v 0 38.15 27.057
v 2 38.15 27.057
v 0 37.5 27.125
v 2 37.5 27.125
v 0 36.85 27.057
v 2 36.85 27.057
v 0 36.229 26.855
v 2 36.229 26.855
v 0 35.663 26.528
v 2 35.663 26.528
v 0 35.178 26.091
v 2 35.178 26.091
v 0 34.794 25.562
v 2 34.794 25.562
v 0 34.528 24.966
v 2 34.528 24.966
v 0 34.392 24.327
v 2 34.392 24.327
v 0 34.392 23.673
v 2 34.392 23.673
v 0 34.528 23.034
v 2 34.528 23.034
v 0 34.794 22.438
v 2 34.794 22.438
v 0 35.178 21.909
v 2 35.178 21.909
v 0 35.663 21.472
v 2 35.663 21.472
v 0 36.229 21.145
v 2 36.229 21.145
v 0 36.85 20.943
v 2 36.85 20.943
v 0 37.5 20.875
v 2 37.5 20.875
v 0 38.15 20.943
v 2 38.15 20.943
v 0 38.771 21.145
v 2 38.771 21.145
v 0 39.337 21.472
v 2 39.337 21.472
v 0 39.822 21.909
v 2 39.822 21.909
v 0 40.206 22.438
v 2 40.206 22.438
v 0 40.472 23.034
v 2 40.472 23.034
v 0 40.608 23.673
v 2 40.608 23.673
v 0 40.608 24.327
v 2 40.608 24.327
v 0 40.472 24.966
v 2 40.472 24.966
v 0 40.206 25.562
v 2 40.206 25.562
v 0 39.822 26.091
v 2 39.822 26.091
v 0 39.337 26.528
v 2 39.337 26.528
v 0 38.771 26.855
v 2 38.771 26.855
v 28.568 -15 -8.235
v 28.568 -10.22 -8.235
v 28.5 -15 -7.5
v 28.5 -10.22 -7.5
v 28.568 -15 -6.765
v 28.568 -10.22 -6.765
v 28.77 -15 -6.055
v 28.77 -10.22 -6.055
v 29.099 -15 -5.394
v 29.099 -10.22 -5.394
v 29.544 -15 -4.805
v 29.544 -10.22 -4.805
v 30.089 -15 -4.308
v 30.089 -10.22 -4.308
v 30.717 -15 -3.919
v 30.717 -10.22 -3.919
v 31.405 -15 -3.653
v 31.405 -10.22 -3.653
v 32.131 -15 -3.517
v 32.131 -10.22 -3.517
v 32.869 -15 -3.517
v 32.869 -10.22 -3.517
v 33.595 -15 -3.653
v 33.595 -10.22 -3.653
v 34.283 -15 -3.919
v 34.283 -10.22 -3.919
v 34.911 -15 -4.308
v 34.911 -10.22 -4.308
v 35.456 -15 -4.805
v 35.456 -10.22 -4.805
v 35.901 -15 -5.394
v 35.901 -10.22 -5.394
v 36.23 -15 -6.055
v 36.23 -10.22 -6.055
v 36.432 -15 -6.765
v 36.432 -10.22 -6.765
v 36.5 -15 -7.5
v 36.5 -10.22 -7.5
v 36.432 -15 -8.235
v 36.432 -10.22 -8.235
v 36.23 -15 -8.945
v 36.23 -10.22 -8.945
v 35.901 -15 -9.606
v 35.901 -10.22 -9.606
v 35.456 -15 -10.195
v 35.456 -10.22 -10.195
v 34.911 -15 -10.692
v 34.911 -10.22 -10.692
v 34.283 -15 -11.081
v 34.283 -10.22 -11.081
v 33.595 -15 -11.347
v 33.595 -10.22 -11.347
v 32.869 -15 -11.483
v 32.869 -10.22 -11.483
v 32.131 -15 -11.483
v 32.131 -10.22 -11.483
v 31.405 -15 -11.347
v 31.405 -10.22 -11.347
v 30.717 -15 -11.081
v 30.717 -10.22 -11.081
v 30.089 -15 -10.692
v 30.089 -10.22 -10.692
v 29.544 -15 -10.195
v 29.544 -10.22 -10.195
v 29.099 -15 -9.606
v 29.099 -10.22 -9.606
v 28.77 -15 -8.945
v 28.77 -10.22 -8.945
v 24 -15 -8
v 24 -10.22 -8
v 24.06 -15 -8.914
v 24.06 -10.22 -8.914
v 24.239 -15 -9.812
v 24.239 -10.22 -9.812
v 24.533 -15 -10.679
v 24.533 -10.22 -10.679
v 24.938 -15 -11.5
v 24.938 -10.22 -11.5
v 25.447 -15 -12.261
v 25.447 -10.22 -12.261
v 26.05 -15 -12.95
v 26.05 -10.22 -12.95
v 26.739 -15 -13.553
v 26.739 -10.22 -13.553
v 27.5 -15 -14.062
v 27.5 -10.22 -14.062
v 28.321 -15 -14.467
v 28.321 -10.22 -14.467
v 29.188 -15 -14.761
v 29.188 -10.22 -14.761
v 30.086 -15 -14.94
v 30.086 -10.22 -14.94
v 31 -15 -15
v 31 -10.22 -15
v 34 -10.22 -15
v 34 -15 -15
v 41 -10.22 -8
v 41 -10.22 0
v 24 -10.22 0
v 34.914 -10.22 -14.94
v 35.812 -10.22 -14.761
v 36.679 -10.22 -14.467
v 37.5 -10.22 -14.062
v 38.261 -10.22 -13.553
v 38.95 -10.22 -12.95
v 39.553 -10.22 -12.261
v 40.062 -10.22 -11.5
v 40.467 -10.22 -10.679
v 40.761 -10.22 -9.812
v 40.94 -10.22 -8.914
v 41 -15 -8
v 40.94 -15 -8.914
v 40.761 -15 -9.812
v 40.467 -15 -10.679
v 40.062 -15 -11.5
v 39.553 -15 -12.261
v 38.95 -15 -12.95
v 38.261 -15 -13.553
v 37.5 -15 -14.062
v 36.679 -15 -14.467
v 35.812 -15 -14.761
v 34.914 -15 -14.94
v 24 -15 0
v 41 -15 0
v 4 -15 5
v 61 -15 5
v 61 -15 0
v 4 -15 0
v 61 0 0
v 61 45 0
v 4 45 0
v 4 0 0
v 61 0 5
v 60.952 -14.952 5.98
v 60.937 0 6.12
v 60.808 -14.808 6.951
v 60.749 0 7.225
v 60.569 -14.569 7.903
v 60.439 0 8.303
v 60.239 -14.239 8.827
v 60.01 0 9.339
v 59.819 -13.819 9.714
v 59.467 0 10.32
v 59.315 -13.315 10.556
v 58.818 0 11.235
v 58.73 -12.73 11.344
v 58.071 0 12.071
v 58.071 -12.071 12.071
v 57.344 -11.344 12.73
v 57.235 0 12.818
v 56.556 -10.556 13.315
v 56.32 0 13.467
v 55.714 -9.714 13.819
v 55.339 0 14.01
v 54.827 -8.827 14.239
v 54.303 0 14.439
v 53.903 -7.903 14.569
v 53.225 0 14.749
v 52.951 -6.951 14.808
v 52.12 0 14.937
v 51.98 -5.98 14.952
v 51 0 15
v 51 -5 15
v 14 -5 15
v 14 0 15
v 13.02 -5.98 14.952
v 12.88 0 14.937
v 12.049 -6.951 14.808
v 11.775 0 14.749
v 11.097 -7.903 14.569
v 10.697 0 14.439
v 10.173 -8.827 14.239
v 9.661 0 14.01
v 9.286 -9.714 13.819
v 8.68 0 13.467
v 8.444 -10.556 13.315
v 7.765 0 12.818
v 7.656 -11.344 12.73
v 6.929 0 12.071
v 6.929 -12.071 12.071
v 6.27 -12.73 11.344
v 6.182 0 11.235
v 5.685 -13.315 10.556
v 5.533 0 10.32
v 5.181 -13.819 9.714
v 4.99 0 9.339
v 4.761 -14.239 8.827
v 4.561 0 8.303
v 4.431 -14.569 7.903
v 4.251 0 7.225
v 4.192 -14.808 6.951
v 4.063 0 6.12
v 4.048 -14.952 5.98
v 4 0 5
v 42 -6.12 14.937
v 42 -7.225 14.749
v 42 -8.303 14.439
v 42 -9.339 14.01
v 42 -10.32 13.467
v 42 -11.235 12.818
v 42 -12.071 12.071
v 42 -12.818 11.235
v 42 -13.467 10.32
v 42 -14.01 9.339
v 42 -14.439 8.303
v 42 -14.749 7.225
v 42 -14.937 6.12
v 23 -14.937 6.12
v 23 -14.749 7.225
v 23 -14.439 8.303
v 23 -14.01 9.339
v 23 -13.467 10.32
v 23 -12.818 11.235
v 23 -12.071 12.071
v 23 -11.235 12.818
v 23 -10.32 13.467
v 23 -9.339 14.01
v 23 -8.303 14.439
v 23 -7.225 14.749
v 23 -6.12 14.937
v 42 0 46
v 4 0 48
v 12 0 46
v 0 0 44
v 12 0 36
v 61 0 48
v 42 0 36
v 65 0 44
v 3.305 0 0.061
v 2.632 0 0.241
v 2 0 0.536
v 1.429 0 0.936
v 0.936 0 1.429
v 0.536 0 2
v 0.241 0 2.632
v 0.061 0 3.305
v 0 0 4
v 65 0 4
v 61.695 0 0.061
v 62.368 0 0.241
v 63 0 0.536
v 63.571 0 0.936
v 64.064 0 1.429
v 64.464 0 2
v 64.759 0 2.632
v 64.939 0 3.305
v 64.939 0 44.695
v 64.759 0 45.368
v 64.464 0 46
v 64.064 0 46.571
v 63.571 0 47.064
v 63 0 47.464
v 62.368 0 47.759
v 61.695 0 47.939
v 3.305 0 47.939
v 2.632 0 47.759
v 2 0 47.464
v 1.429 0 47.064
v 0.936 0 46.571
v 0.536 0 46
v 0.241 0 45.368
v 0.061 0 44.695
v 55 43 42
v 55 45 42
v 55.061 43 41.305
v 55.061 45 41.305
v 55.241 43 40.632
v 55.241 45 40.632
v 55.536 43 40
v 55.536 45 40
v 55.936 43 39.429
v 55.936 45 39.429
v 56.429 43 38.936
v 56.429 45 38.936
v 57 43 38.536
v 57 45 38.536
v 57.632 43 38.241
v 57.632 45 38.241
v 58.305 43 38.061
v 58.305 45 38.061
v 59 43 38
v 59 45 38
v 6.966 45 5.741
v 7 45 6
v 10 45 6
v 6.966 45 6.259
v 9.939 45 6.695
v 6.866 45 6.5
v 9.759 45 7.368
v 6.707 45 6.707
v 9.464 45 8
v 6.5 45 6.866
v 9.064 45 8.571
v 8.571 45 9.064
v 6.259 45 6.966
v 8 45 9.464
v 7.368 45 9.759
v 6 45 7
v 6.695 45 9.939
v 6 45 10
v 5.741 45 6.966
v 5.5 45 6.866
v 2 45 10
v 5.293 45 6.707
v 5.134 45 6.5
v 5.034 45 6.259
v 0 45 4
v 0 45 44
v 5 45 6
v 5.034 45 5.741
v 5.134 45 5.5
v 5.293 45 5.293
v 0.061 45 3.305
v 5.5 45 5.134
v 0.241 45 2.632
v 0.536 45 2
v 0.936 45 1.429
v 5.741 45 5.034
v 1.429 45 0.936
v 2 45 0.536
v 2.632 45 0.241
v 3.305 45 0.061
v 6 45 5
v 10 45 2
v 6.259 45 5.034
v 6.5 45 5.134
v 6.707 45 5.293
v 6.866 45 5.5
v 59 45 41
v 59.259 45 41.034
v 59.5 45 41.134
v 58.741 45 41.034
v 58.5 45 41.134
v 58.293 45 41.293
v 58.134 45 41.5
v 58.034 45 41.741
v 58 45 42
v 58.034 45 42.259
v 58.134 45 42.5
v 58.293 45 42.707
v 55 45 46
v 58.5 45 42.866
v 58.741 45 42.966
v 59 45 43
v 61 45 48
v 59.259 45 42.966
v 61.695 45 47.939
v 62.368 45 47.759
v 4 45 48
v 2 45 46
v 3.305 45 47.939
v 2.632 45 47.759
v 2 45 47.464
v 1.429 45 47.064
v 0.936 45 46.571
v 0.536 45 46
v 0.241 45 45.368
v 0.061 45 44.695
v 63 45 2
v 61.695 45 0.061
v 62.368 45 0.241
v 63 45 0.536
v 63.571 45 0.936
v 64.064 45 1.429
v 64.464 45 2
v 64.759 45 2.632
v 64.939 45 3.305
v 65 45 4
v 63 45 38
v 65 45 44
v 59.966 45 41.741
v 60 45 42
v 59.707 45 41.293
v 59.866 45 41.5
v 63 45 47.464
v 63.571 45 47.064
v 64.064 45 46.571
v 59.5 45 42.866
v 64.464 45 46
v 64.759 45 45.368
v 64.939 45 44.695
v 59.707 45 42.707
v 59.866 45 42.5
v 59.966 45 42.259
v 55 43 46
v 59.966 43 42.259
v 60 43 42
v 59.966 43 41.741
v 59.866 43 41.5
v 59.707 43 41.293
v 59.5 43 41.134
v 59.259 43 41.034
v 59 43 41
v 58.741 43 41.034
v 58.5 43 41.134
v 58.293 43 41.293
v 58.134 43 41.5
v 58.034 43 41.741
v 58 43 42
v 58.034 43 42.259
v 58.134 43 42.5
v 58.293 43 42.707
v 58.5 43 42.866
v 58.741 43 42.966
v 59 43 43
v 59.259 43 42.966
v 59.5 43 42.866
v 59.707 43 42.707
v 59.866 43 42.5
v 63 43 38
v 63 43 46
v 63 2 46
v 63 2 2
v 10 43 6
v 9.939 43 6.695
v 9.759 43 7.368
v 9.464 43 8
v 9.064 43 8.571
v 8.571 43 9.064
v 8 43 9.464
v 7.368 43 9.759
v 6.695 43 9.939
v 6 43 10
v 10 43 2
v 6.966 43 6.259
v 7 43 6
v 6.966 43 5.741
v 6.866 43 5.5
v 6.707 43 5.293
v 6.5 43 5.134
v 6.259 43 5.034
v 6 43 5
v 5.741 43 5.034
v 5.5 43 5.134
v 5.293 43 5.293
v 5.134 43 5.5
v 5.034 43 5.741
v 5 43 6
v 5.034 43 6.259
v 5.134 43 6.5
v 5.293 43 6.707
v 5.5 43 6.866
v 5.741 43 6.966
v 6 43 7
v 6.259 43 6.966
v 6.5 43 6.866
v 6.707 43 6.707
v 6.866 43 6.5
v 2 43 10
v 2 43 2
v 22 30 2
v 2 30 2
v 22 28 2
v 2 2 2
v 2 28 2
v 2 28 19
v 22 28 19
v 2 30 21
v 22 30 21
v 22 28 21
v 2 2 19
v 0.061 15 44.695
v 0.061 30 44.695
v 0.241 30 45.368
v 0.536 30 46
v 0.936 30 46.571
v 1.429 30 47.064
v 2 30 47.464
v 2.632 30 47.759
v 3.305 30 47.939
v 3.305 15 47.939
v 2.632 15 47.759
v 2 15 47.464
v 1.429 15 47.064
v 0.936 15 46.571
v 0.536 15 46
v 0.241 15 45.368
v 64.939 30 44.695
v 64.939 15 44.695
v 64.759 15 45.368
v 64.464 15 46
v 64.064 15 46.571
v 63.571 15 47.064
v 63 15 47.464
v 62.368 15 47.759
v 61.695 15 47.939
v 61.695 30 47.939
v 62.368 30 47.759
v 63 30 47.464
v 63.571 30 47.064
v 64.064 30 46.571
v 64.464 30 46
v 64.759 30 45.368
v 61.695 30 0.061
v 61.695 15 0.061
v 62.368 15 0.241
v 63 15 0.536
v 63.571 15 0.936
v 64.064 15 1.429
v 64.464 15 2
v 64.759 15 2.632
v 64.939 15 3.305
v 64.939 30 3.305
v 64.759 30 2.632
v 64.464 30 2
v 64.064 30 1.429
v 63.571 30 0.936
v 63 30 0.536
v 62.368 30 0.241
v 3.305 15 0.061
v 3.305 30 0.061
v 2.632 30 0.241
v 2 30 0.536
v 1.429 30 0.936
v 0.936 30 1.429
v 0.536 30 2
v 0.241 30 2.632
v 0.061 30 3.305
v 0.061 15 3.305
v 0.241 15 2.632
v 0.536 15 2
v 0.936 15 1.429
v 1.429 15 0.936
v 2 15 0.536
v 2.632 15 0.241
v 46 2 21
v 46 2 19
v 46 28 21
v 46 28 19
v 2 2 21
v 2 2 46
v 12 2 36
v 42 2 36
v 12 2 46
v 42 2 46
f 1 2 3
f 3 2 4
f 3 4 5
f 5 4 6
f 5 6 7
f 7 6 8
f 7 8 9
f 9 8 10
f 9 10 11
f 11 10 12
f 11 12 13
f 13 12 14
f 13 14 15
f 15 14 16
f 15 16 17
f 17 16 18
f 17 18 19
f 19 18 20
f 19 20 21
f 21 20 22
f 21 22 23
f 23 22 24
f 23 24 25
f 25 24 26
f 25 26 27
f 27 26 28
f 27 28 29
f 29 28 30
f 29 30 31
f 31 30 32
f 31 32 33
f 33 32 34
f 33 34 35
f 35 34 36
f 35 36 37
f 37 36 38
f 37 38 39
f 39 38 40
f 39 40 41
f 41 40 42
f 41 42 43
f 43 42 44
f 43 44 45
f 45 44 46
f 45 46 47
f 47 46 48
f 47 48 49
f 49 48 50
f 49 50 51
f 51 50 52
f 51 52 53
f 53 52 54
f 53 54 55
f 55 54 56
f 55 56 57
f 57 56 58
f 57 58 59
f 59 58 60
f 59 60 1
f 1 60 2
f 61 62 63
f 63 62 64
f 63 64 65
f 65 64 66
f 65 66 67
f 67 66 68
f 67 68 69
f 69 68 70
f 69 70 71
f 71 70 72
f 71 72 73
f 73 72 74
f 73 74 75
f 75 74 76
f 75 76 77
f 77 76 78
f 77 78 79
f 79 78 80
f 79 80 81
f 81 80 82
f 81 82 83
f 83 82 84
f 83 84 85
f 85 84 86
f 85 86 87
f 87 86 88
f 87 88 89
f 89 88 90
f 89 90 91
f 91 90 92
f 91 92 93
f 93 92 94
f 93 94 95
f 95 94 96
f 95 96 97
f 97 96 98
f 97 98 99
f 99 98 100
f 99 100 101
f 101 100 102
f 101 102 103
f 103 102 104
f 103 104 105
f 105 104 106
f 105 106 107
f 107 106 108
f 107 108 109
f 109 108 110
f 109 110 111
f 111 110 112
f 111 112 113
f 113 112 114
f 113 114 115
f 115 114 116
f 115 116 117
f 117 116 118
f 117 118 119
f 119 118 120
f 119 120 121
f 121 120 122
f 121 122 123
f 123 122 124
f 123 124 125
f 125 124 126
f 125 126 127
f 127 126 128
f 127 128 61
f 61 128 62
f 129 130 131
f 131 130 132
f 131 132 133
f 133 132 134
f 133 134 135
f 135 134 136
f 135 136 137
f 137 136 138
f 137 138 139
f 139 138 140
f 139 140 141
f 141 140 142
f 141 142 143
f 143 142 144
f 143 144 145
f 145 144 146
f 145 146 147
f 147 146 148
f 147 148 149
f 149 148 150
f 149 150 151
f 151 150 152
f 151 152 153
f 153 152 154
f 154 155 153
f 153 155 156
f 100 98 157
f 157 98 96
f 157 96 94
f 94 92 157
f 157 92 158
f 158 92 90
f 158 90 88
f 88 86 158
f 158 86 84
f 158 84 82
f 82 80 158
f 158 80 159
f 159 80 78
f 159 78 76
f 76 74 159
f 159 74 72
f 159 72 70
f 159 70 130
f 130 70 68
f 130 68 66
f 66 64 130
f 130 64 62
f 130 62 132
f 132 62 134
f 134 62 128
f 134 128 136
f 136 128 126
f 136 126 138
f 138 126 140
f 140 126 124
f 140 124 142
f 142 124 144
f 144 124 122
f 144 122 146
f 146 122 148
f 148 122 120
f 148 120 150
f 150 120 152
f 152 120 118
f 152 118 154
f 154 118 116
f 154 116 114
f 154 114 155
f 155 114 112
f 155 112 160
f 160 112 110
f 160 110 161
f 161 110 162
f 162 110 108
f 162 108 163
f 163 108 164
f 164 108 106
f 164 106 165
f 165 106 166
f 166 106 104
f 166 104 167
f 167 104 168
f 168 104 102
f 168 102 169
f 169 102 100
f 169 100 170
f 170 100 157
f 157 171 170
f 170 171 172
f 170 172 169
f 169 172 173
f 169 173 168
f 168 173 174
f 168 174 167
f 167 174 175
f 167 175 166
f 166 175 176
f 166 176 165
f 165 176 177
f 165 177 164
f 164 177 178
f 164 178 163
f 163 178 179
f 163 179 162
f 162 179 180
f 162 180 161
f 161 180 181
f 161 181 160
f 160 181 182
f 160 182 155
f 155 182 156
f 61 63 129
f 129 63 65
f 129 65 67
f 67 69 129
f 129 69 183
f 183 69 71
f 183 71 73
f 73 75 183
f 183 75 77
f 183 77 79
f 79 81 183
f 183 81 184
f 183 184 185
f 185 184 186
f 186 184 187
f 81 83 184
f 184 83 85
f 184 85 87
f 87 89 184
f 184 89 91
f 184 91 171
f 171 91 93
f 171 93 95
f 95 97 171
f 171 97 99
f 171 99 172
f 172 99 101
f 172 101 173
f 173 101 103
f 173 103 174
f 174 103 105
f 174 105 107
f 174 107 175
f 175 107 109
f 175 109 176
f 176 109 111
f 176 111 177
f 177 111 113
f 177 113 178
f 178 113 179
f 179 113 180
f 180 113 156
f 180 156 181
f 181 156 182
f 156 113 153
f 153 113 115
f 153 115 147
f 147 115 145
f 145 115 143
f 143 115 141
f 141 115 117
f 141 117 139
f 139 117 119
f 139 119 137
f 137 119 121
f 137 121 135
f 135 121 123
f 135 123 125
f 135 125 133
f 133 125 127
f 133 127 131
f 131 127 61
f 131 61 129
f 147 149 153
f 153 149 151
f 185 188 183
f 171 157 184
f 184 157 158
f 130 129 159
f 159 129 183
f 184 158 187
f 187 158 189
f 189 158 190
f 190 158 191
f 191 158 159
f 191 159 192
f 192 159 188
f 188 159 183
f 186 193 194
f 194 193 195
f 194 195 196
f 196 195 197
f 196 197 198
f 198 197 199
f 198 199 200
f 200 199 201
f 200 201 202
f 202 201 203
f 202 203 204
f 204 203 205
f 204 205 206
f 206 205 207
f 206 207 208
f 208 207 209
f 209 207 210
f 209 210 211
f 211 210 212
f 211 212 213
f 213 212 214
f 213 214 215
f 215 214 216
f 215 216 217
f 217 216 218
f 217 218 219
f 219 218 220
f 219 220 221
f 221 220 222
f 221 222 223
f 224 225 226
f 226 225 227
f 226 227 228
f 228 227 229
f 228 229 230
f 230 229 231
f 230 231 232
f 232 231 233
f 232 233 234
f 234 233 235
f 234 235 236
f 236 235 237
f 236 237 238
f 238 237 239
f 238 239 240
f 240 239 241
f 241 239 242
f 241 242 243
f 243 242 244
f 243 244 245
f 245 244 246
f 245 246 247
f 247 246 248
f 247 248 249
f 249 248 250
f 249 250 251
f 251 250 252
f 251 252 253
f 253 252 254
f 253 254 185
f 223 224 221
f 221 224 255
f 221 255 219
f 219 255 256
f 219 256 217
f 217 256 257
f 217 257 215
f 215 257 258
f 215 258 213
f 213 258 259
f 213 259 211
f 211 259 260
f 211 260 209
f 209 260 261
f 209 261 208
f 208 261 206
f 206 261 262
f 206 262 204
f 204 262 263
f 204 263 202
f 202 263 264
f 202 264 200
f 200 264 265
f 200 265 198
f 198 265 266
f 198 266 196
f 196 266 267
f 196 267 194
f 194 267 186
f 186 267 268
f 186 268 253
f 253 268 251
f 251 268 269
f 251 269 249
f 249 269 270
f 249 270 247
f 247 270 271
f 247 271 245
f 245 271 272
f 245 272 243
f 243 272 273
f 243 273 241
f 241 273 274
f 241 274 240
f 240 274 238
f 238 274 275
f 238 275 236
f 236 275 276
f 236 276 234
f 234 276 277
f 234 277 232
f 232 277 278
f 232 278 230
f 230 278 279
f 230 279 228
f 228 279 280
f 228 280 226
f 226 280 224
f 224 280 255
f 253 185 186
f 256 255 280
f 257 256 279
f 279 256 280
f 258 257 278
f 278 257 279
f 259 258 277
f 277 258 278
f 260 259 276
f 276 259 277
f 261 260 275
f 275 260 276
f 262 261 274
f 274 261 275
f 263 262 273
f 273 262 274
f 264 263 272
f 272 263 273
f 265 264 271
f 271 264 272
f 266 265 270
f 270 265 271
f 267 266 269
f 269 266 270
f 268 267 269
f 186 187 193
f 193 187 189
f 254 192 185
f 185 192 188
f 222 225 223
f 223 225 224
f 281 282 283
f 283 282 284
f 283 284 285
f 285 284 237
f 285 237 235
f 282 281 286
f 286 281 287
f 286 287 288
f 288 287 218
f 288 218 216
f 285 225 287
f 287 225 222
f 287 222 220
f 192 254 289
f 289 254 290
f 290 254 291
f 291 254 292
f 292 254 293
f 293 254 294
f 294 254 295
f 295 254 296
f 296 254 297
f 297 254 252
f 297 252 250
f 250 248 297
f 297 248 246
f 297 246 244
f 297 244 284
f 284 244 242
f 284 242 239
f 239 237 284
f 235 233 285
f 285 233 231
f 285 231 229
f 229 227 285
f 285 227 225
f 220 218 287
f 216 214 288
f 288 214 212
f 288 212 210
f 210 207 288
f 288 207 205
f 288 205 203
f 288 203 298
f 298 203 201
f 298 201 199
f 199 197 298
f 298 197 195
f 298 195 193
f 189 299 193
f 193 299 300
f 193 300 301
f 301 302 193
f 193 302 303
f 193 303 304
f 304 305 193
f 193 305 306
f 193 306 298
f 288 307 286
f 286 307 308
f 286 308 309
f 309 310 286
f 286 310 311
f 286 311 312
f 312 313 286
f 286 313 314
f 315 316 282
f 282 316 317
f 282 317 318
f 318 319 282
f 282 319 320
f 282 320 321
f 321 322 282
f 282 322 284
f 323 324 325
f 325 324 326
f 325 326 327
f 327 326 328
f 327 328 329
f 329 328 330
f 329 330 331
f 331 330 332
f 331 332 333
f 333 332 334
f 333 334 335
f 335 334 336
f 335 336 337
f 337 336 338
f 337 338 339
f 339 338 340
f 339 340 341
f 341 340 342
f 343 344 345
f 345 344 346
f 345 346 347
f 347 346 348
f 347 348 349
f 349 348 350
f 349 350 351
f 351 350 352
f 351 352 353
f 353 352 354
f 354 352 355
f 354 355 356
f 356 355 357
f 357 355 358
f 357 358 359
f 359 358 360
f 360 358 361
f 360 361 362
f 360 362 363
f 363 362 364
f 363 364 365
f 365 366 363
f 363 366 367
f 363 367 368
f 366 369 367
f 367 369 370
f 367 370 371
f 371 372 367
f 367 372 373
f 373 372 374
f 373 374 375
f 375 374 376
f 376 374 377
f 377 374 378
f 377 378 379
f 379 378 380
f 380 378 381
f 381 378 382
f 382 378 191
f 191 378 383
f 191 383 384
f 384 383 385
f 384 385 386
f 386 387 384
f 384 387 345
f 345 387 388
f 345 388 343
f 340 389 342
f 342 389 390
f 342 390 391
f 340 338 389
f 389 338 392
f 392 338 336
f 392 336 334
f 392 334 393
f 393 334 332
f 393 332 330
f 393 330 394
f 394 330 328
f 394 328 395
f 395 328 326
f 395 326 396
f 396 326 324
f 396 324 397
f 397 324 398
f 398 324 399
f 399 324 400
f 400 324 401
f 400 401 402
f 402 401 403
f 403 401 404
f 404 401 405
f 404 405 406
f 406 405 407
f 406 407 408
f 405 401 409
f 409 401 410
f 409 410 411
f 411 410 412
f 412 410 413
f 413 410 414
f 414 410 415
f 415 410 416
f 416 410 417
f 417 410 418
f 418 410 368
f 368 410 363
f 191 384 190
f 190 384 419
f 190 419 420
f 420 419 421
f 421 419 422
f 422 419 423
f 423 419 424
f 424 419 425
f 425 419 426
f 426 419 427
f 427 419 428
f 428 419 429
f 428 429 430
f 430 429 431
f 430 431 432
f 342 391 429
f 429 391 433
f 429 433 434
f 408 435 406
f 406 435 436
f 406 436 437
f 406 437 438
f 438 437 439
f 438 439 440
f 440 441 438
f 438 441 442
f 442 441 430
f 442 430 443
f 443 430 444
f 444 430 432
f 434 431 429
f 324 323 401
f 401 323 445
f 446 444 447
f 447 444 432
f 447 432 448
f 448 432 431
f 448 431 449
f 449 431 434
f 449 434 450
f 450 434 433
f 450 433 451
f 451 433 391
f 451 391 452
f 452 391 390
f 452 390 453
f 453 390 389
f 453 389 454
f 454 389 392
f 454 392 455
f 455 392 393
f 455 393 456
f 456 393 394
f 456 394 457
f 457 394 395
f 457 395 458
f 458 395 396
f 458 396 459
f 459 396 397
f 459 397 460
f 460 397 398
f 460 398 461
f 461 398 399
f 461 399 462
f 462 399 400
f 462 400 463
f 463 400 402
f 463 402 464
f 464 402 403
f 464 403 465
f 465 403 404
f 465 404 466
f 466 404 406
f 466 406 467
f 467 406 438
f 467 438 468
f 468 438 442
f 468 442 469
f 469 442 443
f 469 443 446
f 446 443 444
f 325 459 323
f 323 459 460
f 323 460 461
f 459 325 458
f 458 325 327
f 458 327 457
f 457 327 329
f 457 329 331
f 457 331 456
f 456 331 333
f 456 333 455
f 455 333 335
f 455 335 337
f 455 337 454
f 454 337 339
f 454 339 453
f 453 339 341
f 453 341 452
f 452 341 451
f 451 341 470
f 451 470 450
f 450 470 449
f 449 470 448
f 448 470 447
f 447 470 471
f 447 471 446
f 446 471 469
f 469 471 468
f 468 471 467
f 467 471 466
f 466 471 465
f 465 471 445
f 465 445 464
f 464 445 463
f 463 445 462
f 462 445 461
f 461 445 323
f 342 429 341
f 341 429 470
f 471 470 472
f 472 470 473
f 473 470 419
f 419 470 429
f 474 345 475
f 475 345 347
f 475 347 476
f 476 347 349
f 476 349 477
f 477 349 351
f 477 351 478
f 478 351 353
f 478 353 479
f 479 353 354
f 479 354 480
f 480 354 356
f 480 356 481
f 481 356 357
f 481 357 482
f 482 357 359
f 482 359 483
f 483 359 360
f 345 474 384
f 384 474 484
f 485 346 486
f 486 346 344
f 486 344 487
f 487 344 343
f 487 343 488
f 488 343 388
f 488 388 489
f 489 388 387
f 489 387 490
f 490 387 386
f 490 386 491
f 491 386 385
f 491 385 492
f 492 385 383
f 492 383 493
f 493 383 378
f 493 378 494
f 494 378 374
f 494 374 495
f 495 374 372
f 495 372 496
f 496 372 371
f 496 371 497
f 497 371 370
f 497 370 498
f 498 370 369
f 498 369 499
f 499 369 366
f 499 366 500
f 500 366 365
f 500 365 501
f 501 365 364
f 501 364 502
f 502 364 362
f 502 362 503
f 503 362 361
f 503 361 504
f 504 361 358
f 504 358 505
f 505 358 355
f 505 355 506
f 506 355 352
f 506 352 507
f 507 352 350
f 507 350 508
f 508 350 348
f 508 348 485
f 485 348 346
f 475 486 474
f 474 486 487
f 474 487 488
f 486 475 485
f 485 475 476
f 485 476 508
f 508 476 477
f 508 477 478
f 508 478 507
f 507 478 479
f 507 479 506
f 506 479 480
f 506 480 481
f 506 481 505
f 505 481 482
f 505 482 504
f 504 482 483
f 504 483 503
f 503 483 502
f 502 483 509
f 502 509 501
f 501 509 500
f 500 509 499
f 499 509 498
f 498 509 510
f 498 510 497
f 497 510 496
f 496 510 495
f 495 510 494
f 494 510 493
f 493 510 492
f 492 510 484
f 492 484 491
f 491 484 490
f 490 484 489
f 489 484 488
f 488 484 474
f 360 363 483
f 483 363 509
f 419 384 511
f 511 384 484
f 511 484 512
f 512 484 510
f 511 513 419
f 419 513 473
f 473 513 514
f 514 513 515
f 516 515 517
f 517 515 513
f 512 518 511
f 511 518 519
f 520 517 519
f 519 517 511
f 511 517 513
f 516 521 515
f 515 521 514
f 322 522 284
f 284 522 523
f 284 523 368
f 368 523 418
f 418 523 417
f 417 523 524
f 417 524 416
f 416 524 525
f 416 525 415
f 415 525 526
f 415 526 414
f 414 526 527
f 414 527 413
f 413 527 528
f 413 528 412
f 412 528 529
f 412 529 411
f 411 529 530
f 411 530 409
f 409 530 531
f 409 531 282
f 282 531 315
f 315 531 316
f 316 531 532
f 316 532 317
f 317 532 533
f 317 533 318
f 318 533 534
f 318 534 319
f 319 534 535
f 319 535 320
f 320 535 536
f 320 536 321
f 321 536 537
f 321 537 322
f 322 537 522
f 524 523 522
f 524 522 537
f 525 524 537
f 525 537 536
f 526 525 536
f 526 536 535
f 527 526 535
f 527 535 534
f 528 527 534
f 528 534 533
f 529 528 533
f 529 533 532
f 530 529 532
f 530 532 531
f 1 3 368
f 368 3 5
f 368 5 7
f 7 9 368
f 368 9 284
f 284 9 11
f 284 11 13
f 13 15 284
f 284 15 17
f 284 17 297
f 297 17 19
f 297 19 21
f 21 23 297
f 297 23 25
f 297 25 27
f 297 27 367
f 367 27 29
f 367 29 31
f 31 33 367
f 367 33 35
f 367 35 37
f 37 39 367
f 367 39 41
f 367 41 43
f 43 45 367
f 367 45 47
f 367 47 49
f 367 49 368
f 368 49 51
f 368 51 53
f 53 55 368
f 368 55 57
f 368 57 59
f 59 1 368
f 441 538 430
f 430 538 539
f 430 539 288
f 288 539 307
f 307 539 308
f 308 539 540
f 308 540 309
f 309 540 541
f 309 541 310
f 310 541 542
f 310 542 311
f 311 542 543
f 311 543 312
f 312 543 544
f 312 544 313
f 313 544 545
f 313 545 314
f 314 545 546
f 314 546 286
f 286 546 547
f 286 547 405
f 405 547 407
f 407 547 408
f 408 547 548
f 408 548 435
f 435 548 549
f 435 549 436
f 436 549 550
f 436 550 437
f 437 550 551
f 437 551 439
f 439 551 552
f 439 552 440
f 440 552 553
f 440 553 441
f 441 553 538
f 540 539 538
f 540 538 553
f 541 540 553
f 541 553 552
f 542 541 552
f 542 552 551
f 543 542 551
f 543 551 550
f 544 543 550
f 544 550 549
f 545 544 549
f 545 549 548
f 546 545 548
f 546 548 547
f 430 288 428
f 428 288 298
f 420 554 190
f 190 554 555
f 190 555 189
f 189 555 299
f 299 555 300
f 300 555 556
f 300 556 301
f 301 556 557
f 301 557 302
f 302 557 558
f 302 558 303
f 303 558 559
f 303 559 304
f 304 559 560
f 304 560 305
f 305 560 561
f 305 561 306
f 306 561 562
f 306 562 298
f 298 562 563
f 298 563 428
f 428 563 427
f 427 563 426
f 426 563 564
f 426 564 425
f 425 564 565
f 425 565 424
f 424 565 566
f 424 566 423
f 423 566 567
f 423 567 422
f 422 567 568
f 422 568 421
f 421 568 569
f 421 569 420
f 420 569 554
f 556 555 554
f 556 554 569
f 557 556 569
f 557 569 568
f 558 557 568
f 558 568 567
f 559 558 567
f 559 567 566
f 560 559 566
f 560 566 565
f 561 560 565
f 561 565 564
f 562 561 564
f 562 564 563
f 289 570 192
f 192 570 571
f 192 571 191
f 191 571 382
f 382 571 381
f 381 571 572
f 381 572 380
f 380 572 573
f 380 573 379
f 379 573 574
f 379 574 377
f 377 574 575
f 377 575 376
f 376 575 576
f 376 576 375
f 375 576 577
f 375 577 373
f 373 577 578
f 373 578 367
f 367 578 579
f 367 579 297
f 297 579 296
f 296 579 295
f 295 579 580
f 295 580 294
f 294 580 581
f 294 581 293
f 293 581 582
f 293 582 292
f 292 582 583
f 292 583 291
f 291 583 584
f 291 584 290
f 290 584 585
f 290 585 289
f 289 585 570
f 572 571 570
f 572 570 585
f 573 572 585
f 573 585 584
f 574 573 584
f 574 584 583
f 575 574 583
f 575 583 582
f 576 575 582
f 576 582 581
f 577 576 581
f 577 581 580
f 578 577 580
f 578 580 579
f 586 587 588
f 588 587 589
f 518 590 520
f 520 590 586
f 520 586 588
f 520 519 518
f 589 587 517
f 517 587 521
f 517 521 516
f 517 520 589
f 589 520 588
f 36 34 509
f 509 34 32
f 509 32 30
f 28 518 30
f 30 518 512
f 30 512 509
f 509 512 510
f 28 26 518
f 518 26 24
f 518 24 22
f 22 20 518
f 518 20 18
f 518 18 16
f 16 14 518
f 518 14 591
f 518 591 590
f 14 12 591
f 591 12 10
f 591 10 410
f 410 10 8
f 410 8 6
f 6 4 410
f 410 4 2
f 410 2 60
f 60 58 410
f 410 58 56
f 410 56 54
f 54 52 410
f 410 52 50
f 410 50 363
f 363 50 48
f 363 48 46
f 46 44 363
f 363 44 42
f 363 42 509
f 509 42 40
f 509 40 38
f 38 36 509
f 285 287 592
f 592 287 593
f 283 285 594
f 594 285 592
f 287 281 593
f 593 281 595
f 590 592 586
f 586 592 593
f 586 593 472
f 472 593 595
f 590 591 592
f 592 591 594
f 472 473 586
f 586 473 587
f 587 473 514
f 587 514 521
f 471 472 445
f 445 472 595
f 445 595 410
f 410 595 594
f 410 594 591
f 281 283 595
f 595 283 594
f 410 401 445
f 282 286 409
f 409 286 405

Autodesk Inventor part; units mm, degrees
ref_plane "YZ Plane" through (0, 0, 0) normal (1, 0, 0) x (0, 1, 0)
ref_plane "XZ Plane" through (0, 0, 0) normal (0, 1, 0) x (-1, 0, 0)
ref_plane "XY Plane" through (0, 0, 0) normal (0, 0, 1) x (1, 0, 0)
sketch "Sketch1" plane through (0, 0, 0) normal (0, 0, 1) x (1, 0, 0)
  line L0 (0, 0) -> (65, 0)
  line L1 (65, 0) -> (65, 45)
  line L2 (65, 45) -> (0, 45)
  line L3 (0, 45) -> (0, 0)
  dimension "d3" = 65
  dimension "d4" = 45
extrude "Extrusion1" add sketch "Sketch1" along normal blind 48
shell "Shell1" thickness 2 removed faces 1 at (43.3333, 45, 16)
sketch "Sketch2" plane through (2, 2, 2) normal (0, 1, 0) x (1, 0, 0)
  line L0 (61, -44) -> (0, -44) projected
  line L1 (0, -44) -> (10, -44)
  line L2 (10, -44) -> (40, -44)
  line L3 (40, -44) -> (40, -34)
  line L4 (40, -34) -> (10, -34)
  line L5 (10, -34) -> (10, -44)
  line L6 (61, 0) -> (61, -44) projected
  line L7 (0, -44) -> (0, 0) projected
  point P0 (-2, 2)
  dimension "d9" = 30
  dimension "d10" = 10
  dimension "d11" = 61
  dimension "d27" = 10
extrude "Extrusion2" cut sketch "Sketch2" against normal through all
sketch "Sketch3" plane through (2, 2, 2) normal (0, 1, 0) x (1, 0, 0)
  line L0 (0, 0) -> (0, -44) projected
  line L1 (0, -17) -> (0, 33)
  line L2 (0, -17) -> (44, -17)
  line L3 (44, -17) -> (0, -17)
  line L4 (0, -17) -> (0, -19)
  line L5 (0, -19) -> (44, -19)
  line L6 (44, -19) -> (44, -17)
  point P0 (-2, 2)
  dimension "d16" = 44
  dimension "d17" = 2
extrude "Extrusion3" add sketch "Sketch3" along normal blind 26
fillet "Fillet1" radius 4 1 edges at (0, 22.5, 0)
fillet "Fillet2" radius 4 1 edges at (65, 22.5, 0)
fillet "Fillet3" radius 4 1 edges at (65, 22.5, 48)
fillet "Fillet4" radius 4 1 edges at (0, 22.5, 48)
sketch "Sketch4" plane through (2, 2, 2) normal (1, 0, 0) x (0, 0, -1)
  line L0 (-19, 26) -> (-17, 26) projected
  line L1 (-19, 26) -> (0, 26)
  line L2 (0, 26) -> (0, 28)
  line L3 (0, 28) -> (-19, 28)
  line L4 (-19, 28) -> (-19, 26)
  point P0 (2, -2)
  dimension "d24" = 2
extrude "Extrusion4" add sketch "Sketch4" along normal blind 20
sketch "Sketch8" plane through (2, 2, 2) normal (0, 0, 1) x (1, 0, 0)
  line L0 (0, 43) -> (8, 43)
  line L1 (8, 43) -> (8, 41)
  line L2 (8, 41) -> (0, 41)
  line L3 (0, 41) -> (0, 43)
  point P0 (-2, -2)
  dimension "d28" = 8
  dimension "d29" = 2
extrude "Extrusion5" add sketch "Sketch8" along normal blind 8
sketch "Sketch10" plane through (4, 45, 0) normal (0, 1, 0) x (1, 0, 0)
  line L0 (6, -2) -> (6, -10) projected
  circle A0 centre (2, -6) radius 1
  point P0 (-4, 0)
extrude "Extrusion7" cut sketch "Sketch10" against normal blind 2
fillet "Fillet6" radius 4 1 edges at (10, 44, 10)
sketch "Sketch13" plane through (63, 45, 46) normal (0, 0, -1) x (-1, 0, 0)
  line L0 (0, -43) -> (0, 0) projected
  line L1 (0, 0) -> (8, 0)
  line L2 (8, 0) -> (8, -2)
  line L3 (8, -2) -> (0, -2)
  line L4 (0, -2) -> (0, 0)
  point P0 (63, -45)
  point P1 (0, -2)
  dimension "d51" = 8
  dimension "d52" = 2
extrude "Extrusion10" add sketch "Sketch13" along normal blind 8
sketch "Sketch14" plane through (4, 45, 0) normal (0, 1, 0) x (1, 0, 0)
  circle A0 centre (55, -42) radius 1
  point P0 (-4, 0)
extrude "Extrusion11" cut sketch "Sketch14" against normal blind 2
fillet "Fillet7" radius 4 1 edges at (55, 44, 38)
sketch "Sketch15" plane through (4, 0, 0) normal (0, -1, 0) x (1, 0, 0)
  line L0 (57, 0) -> (0, 0)
  line L1 (0, 0) -> (0, 15)
  line L2 (0, 15) -> (57, 15)
  line L3 (57, 15) -> (57, 0)
extrude "Extrusion12" add sketch "Sketch15" along normal blind 15
fillet "Fillet8" radius 10 3 edges at (4, -7.5, 15) (61, -7.5, 15) (32.5, -15, 15)
sketch "Sketch16" plane through (0, 0, 0) normal (0, 0, -1) x (-1, 0, 0)
  line L0 (-41, -15) -> (-24, -15)
  line L1 (-24, -15) -> (-24, -10.2203)
  line L2 (-24, -10.2203) -> (-41, -10.2203)
  line L3 (-41, -10.2203) -> (-41, -15)
  point P0 (0, 0)
  point P1 (-4, -15)
  point P2 (-61, -15)
extrude "Extrusion13" add sketch "Sketch16" along normal blind 15
fillet "Fillet9" radius 7 2 edges at (41, -12.6102, -15) (24, -12.6102, -15)
sketch "Sketch17" plane through (24, -10.2203, 0) normal (0, 1, 0) x (1, 0, 0)
  line L0 (0, 0) -> (8.5, 0)
  circle A0 centre (8.5, 7.5) radius 4
  point P0 (-24, 0)
extrude "Extrusion14" cut sketch "Sketch17" against normal through all
sketch "Sketch19" plane through (2, 2, 46) normal (1, 0, 0) x (0, 0, -1)
  circle A0 centre (22, 35.5) radius 3.125
  point P0 (46, -2)
  point P1 (44, 28)
  dimension "d78" = 6.25
extrude "Extrusion15" cut sketch "Sketch19" against normal through all
properties part number "Bike_Telemetry"
